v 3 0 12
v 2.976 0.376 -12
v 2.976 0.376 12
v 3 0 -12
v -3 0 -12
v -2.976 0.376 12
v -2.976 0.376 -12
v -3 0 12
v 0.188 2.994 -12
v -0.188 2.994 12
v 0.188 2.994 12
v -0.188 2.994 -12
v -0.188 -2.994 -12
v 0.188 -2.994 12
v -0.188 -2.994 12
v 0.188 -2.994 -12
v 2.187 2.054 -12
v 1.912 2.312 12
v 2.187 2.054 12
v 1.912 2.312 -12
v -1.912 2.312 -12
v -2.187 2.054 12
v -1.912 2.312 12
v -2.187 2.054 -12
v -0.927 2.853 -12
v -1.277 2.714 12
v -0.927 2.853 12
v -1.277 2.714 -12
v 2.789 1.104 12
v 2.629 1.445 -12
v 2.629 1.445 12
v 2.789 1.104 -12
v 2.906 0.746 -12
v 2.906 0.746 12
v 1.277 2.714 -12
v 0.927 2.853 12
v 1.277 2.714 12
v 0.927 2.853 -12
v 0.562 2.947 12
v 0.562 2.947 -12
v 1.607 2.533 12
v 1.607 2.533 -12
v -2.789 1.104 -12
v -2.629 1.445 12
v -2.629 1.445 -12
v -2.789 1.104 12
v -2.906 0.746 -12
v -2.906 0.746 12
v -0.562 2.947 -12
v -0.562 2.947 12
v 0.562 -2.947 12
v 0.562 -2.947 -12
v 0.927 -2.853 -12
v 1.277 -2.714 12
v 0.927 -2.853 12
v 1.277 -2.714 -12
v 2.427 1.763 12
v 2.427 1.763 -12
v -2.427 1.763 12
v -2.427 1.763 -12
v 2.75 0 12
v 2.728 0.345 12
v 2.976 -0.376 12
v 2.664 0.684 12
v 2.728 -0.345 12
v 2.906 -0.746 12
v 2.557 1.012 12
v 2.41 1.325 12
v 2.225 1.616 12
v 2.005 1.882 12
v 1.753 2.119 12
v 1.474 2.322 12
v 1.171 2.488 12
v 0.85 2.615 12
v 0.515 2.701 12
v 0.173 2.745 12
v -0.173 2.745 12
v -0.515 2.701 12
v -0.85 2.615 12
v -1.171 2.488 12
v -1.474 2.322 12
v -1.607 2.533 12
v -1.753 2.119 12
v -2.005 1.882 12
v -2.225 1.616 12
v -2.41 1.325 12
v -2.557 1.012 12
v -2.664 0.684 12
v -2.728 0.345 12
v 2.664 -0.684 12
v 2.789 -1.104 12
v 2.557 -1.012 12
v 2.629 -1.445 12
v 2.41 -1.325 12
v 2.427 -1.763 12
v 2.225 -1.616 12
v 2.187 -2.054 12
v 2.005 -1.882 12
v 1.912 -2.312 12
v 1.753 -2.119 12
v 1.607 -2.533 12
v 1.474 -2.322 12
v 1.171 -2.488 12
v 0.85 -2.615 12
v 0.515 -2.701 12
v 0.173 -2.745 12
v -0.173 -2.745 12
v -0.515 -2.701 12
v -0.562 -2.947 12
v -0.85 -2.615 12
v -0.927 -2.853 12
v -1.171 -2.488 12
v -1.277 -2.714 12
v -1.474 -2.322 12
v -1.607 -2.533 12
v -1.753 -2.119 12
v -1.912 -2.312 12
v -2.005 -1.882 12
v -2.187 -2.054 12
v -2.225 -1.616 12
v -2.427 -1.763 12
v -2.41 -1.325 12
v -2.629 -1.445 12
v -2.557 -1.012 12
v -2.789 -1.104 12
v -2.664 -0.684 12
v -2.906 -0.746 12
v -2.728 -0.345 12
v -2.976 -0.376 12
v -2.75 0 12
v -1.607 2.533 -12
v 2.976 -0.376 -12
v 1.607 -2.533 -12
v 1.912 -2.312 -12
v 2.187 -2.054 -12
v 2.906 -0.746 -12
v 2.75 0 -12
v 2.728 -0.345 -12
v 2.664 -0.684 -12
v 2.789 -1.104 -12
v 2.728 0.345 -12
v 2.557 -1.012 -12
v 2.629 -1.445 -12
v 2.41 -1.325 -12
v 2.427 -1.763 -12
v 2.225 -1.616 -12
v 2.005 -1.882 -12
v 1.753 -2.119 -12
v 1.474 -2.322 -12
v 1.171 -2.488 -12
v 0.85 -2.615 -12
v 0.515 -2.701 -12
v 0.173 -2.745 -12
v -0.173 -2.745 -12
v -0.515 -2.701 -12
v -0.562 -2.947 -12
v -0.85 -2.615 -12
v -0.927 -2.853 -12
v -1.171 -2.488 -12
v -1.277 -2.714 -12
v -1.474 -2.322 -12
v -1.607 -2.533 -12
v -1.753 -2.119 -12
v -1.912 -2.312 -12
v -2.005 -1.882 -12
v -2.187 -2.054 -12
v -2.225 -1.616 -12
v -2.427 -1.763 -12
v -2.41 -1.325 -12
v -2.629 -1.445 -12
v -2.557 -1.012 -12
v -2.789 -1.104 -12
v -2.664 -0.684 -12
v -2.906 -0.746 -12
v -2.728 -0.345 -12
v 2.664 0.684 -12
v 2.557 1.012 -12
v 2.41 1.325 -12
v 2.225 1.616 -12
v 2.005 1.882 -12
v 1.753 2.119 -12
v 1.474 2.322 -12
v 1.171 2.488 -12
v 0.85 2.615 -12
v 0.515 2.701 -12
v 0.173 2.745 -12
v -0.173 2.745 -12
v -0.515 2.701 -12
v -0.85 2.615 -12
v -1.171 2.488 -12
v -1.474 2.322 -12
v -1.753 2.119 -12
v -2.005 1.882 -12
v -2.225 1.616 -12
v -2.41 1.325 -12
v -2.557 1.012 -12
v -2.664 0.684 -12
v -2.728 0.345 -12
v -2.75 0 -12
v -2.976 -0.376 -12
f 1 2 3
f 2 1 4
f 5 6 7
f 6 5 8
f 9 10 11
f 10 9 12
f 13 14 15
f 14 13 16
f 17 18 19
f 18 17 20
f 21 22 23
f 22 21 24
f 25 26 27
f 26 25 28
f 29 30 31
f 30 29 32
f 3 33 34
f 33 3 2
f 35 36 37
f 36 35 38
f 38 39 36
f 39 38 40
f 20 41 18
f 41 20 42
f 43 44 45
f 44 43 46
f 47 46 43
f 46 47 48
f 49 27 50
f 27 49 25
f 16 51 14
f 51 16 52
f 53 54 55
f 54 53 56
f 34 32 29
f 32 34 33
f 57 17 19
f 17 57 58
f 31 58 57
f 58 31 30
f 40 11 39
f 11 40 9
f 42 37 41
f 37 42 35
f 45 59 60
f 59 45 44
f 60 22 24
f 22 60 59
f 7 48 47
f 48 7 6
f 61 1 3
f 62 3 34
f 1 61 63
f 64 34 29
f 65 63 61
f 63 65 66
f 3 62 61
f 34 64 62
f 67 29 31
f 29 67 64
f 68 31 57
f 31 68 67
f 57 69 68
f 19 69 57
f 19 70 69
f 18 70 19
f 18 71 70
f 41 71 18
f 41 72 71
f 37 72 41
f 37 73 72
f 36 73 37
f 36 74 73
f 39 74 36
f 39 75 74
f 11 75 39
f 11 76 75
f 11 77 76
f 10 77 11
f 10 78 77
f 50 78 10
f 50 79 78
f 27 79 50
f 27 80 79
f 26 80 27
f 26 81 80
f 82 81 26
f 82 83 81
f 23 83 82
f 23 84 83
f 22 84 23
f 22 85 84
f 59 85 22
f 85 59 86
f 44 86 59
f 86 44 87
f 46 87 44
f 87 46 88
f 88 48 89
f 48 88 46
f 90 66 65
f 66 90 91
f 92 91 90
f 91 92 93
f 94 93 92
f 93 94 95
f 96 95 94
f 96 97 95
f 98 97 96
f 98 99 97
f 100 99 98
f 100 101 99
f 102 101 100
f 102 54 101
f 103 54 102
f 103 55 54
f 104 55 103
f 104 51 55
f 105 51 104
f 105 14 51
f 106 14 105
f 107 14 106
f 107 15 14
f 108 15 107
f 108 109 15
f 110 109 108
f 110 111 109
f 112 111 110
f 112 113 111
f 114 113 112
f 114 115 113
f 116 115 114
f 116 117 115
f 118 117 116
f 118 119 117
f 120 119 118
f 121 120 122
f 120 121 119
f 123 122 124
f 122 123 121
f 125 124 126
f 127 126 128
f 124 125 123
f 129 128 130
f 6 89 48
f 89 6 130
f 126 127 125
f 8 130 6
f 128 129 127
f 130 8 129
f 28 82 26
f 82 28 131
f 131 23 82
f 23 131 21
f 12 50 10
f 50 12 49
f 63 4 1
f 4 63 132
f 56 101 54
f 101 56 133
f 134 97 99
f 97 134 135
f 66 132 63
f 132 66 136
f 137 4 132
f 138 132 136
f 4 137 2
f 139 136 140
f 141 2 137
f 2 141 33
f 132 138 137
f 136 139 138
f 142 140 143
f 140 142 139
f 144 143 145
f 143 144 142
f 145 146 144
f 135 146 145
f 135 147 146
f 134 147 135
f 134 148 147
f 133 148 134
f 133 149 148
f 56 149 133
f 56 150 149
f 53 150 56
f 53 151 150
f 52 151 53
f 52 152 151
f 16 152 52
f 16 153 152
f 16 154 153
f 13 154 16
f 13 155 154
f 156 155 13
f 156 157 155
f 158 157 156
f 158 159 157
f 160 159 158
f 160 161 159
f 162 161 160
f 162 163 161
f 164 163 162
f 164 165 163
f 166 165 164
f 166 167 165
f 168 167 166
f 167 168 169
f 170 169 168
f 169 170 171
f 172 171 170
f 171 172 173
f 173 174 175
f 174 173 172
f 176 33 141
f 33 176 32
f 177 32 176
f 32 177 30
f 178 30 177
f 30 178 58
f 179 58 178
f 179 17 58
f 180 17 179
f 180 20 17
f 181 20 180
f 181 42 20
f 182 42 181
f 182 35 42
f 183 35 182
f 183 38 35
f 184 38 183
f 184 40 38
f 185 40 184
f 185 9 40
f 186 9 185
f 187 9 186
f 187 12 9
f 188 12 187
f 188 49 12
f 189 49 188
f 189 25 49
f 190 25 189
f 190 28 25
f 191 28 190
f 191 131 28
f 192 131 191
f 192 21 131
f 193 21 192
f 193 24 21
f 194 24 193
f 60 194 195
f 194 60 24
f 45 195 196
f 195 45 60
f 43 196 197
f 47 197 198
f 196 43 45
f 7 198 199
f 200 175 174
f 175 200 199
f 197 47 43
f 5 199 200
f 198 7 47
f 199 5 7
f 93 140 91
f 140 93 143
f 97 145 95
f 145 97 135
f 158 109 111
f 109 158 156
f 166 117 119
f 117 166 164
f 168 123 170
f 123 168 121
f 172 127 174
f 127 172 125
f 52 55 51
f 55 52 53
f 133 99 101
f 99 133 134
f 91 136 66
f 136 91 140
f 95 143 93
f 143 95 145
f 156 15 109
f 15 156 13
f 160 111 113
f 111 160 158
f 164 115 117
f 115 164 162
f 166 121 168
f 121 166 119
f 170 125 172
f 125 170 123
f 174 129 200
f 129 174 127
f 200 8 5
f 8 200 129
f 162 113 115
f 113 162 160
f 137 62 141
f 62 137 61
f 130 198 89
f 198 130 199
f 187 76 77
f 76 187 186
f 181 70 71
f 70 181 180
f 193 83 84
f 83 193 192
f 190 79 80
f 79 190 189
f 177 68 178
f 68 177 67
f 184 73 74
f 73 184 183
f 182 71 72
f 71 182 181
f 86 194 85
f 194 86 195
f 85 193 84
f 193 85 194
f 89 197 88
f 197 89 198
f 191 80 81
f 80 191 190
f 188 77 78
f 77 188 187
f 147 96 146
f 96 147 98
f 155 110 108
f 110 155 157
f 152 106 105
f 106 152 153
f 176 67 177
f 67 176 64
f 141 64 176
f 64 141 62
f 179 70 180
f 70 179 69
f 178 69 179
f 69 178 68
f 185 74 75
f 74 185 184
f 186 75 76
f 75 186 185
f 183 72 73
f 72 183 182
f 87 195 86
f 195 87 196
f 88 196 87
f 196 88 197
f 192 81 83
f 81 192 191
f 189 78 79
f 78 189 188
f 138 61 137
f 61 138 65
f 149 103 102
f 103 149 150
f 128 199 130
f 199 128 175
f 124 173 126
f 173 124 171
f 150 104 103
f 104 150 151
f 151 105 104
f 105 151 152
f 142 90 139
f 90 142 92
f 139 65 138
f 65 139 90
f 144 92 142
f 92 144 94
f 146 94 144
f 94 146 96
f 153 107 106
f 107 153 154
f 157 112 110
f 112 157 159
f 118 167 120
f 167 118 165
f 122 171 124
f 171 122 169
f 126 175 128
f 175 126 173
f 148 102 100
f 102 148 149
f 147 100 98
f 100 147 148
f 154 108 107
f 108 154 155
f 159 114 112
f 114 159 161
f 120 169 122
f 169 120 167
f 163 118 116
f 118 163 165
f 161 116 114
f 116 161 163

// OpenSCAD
$fn = 50;


difference() {
	union() {
		translate(v = [0, 0, -12.0000000000]) {
			cylinder(h = 24, r = 3.0000000000);
		}
	}
	union() {
		translate(v = [0, 0, -100.0000000000]) {
			cylinder(h = 200, r = 2.7500000000);
		}
	}
}
